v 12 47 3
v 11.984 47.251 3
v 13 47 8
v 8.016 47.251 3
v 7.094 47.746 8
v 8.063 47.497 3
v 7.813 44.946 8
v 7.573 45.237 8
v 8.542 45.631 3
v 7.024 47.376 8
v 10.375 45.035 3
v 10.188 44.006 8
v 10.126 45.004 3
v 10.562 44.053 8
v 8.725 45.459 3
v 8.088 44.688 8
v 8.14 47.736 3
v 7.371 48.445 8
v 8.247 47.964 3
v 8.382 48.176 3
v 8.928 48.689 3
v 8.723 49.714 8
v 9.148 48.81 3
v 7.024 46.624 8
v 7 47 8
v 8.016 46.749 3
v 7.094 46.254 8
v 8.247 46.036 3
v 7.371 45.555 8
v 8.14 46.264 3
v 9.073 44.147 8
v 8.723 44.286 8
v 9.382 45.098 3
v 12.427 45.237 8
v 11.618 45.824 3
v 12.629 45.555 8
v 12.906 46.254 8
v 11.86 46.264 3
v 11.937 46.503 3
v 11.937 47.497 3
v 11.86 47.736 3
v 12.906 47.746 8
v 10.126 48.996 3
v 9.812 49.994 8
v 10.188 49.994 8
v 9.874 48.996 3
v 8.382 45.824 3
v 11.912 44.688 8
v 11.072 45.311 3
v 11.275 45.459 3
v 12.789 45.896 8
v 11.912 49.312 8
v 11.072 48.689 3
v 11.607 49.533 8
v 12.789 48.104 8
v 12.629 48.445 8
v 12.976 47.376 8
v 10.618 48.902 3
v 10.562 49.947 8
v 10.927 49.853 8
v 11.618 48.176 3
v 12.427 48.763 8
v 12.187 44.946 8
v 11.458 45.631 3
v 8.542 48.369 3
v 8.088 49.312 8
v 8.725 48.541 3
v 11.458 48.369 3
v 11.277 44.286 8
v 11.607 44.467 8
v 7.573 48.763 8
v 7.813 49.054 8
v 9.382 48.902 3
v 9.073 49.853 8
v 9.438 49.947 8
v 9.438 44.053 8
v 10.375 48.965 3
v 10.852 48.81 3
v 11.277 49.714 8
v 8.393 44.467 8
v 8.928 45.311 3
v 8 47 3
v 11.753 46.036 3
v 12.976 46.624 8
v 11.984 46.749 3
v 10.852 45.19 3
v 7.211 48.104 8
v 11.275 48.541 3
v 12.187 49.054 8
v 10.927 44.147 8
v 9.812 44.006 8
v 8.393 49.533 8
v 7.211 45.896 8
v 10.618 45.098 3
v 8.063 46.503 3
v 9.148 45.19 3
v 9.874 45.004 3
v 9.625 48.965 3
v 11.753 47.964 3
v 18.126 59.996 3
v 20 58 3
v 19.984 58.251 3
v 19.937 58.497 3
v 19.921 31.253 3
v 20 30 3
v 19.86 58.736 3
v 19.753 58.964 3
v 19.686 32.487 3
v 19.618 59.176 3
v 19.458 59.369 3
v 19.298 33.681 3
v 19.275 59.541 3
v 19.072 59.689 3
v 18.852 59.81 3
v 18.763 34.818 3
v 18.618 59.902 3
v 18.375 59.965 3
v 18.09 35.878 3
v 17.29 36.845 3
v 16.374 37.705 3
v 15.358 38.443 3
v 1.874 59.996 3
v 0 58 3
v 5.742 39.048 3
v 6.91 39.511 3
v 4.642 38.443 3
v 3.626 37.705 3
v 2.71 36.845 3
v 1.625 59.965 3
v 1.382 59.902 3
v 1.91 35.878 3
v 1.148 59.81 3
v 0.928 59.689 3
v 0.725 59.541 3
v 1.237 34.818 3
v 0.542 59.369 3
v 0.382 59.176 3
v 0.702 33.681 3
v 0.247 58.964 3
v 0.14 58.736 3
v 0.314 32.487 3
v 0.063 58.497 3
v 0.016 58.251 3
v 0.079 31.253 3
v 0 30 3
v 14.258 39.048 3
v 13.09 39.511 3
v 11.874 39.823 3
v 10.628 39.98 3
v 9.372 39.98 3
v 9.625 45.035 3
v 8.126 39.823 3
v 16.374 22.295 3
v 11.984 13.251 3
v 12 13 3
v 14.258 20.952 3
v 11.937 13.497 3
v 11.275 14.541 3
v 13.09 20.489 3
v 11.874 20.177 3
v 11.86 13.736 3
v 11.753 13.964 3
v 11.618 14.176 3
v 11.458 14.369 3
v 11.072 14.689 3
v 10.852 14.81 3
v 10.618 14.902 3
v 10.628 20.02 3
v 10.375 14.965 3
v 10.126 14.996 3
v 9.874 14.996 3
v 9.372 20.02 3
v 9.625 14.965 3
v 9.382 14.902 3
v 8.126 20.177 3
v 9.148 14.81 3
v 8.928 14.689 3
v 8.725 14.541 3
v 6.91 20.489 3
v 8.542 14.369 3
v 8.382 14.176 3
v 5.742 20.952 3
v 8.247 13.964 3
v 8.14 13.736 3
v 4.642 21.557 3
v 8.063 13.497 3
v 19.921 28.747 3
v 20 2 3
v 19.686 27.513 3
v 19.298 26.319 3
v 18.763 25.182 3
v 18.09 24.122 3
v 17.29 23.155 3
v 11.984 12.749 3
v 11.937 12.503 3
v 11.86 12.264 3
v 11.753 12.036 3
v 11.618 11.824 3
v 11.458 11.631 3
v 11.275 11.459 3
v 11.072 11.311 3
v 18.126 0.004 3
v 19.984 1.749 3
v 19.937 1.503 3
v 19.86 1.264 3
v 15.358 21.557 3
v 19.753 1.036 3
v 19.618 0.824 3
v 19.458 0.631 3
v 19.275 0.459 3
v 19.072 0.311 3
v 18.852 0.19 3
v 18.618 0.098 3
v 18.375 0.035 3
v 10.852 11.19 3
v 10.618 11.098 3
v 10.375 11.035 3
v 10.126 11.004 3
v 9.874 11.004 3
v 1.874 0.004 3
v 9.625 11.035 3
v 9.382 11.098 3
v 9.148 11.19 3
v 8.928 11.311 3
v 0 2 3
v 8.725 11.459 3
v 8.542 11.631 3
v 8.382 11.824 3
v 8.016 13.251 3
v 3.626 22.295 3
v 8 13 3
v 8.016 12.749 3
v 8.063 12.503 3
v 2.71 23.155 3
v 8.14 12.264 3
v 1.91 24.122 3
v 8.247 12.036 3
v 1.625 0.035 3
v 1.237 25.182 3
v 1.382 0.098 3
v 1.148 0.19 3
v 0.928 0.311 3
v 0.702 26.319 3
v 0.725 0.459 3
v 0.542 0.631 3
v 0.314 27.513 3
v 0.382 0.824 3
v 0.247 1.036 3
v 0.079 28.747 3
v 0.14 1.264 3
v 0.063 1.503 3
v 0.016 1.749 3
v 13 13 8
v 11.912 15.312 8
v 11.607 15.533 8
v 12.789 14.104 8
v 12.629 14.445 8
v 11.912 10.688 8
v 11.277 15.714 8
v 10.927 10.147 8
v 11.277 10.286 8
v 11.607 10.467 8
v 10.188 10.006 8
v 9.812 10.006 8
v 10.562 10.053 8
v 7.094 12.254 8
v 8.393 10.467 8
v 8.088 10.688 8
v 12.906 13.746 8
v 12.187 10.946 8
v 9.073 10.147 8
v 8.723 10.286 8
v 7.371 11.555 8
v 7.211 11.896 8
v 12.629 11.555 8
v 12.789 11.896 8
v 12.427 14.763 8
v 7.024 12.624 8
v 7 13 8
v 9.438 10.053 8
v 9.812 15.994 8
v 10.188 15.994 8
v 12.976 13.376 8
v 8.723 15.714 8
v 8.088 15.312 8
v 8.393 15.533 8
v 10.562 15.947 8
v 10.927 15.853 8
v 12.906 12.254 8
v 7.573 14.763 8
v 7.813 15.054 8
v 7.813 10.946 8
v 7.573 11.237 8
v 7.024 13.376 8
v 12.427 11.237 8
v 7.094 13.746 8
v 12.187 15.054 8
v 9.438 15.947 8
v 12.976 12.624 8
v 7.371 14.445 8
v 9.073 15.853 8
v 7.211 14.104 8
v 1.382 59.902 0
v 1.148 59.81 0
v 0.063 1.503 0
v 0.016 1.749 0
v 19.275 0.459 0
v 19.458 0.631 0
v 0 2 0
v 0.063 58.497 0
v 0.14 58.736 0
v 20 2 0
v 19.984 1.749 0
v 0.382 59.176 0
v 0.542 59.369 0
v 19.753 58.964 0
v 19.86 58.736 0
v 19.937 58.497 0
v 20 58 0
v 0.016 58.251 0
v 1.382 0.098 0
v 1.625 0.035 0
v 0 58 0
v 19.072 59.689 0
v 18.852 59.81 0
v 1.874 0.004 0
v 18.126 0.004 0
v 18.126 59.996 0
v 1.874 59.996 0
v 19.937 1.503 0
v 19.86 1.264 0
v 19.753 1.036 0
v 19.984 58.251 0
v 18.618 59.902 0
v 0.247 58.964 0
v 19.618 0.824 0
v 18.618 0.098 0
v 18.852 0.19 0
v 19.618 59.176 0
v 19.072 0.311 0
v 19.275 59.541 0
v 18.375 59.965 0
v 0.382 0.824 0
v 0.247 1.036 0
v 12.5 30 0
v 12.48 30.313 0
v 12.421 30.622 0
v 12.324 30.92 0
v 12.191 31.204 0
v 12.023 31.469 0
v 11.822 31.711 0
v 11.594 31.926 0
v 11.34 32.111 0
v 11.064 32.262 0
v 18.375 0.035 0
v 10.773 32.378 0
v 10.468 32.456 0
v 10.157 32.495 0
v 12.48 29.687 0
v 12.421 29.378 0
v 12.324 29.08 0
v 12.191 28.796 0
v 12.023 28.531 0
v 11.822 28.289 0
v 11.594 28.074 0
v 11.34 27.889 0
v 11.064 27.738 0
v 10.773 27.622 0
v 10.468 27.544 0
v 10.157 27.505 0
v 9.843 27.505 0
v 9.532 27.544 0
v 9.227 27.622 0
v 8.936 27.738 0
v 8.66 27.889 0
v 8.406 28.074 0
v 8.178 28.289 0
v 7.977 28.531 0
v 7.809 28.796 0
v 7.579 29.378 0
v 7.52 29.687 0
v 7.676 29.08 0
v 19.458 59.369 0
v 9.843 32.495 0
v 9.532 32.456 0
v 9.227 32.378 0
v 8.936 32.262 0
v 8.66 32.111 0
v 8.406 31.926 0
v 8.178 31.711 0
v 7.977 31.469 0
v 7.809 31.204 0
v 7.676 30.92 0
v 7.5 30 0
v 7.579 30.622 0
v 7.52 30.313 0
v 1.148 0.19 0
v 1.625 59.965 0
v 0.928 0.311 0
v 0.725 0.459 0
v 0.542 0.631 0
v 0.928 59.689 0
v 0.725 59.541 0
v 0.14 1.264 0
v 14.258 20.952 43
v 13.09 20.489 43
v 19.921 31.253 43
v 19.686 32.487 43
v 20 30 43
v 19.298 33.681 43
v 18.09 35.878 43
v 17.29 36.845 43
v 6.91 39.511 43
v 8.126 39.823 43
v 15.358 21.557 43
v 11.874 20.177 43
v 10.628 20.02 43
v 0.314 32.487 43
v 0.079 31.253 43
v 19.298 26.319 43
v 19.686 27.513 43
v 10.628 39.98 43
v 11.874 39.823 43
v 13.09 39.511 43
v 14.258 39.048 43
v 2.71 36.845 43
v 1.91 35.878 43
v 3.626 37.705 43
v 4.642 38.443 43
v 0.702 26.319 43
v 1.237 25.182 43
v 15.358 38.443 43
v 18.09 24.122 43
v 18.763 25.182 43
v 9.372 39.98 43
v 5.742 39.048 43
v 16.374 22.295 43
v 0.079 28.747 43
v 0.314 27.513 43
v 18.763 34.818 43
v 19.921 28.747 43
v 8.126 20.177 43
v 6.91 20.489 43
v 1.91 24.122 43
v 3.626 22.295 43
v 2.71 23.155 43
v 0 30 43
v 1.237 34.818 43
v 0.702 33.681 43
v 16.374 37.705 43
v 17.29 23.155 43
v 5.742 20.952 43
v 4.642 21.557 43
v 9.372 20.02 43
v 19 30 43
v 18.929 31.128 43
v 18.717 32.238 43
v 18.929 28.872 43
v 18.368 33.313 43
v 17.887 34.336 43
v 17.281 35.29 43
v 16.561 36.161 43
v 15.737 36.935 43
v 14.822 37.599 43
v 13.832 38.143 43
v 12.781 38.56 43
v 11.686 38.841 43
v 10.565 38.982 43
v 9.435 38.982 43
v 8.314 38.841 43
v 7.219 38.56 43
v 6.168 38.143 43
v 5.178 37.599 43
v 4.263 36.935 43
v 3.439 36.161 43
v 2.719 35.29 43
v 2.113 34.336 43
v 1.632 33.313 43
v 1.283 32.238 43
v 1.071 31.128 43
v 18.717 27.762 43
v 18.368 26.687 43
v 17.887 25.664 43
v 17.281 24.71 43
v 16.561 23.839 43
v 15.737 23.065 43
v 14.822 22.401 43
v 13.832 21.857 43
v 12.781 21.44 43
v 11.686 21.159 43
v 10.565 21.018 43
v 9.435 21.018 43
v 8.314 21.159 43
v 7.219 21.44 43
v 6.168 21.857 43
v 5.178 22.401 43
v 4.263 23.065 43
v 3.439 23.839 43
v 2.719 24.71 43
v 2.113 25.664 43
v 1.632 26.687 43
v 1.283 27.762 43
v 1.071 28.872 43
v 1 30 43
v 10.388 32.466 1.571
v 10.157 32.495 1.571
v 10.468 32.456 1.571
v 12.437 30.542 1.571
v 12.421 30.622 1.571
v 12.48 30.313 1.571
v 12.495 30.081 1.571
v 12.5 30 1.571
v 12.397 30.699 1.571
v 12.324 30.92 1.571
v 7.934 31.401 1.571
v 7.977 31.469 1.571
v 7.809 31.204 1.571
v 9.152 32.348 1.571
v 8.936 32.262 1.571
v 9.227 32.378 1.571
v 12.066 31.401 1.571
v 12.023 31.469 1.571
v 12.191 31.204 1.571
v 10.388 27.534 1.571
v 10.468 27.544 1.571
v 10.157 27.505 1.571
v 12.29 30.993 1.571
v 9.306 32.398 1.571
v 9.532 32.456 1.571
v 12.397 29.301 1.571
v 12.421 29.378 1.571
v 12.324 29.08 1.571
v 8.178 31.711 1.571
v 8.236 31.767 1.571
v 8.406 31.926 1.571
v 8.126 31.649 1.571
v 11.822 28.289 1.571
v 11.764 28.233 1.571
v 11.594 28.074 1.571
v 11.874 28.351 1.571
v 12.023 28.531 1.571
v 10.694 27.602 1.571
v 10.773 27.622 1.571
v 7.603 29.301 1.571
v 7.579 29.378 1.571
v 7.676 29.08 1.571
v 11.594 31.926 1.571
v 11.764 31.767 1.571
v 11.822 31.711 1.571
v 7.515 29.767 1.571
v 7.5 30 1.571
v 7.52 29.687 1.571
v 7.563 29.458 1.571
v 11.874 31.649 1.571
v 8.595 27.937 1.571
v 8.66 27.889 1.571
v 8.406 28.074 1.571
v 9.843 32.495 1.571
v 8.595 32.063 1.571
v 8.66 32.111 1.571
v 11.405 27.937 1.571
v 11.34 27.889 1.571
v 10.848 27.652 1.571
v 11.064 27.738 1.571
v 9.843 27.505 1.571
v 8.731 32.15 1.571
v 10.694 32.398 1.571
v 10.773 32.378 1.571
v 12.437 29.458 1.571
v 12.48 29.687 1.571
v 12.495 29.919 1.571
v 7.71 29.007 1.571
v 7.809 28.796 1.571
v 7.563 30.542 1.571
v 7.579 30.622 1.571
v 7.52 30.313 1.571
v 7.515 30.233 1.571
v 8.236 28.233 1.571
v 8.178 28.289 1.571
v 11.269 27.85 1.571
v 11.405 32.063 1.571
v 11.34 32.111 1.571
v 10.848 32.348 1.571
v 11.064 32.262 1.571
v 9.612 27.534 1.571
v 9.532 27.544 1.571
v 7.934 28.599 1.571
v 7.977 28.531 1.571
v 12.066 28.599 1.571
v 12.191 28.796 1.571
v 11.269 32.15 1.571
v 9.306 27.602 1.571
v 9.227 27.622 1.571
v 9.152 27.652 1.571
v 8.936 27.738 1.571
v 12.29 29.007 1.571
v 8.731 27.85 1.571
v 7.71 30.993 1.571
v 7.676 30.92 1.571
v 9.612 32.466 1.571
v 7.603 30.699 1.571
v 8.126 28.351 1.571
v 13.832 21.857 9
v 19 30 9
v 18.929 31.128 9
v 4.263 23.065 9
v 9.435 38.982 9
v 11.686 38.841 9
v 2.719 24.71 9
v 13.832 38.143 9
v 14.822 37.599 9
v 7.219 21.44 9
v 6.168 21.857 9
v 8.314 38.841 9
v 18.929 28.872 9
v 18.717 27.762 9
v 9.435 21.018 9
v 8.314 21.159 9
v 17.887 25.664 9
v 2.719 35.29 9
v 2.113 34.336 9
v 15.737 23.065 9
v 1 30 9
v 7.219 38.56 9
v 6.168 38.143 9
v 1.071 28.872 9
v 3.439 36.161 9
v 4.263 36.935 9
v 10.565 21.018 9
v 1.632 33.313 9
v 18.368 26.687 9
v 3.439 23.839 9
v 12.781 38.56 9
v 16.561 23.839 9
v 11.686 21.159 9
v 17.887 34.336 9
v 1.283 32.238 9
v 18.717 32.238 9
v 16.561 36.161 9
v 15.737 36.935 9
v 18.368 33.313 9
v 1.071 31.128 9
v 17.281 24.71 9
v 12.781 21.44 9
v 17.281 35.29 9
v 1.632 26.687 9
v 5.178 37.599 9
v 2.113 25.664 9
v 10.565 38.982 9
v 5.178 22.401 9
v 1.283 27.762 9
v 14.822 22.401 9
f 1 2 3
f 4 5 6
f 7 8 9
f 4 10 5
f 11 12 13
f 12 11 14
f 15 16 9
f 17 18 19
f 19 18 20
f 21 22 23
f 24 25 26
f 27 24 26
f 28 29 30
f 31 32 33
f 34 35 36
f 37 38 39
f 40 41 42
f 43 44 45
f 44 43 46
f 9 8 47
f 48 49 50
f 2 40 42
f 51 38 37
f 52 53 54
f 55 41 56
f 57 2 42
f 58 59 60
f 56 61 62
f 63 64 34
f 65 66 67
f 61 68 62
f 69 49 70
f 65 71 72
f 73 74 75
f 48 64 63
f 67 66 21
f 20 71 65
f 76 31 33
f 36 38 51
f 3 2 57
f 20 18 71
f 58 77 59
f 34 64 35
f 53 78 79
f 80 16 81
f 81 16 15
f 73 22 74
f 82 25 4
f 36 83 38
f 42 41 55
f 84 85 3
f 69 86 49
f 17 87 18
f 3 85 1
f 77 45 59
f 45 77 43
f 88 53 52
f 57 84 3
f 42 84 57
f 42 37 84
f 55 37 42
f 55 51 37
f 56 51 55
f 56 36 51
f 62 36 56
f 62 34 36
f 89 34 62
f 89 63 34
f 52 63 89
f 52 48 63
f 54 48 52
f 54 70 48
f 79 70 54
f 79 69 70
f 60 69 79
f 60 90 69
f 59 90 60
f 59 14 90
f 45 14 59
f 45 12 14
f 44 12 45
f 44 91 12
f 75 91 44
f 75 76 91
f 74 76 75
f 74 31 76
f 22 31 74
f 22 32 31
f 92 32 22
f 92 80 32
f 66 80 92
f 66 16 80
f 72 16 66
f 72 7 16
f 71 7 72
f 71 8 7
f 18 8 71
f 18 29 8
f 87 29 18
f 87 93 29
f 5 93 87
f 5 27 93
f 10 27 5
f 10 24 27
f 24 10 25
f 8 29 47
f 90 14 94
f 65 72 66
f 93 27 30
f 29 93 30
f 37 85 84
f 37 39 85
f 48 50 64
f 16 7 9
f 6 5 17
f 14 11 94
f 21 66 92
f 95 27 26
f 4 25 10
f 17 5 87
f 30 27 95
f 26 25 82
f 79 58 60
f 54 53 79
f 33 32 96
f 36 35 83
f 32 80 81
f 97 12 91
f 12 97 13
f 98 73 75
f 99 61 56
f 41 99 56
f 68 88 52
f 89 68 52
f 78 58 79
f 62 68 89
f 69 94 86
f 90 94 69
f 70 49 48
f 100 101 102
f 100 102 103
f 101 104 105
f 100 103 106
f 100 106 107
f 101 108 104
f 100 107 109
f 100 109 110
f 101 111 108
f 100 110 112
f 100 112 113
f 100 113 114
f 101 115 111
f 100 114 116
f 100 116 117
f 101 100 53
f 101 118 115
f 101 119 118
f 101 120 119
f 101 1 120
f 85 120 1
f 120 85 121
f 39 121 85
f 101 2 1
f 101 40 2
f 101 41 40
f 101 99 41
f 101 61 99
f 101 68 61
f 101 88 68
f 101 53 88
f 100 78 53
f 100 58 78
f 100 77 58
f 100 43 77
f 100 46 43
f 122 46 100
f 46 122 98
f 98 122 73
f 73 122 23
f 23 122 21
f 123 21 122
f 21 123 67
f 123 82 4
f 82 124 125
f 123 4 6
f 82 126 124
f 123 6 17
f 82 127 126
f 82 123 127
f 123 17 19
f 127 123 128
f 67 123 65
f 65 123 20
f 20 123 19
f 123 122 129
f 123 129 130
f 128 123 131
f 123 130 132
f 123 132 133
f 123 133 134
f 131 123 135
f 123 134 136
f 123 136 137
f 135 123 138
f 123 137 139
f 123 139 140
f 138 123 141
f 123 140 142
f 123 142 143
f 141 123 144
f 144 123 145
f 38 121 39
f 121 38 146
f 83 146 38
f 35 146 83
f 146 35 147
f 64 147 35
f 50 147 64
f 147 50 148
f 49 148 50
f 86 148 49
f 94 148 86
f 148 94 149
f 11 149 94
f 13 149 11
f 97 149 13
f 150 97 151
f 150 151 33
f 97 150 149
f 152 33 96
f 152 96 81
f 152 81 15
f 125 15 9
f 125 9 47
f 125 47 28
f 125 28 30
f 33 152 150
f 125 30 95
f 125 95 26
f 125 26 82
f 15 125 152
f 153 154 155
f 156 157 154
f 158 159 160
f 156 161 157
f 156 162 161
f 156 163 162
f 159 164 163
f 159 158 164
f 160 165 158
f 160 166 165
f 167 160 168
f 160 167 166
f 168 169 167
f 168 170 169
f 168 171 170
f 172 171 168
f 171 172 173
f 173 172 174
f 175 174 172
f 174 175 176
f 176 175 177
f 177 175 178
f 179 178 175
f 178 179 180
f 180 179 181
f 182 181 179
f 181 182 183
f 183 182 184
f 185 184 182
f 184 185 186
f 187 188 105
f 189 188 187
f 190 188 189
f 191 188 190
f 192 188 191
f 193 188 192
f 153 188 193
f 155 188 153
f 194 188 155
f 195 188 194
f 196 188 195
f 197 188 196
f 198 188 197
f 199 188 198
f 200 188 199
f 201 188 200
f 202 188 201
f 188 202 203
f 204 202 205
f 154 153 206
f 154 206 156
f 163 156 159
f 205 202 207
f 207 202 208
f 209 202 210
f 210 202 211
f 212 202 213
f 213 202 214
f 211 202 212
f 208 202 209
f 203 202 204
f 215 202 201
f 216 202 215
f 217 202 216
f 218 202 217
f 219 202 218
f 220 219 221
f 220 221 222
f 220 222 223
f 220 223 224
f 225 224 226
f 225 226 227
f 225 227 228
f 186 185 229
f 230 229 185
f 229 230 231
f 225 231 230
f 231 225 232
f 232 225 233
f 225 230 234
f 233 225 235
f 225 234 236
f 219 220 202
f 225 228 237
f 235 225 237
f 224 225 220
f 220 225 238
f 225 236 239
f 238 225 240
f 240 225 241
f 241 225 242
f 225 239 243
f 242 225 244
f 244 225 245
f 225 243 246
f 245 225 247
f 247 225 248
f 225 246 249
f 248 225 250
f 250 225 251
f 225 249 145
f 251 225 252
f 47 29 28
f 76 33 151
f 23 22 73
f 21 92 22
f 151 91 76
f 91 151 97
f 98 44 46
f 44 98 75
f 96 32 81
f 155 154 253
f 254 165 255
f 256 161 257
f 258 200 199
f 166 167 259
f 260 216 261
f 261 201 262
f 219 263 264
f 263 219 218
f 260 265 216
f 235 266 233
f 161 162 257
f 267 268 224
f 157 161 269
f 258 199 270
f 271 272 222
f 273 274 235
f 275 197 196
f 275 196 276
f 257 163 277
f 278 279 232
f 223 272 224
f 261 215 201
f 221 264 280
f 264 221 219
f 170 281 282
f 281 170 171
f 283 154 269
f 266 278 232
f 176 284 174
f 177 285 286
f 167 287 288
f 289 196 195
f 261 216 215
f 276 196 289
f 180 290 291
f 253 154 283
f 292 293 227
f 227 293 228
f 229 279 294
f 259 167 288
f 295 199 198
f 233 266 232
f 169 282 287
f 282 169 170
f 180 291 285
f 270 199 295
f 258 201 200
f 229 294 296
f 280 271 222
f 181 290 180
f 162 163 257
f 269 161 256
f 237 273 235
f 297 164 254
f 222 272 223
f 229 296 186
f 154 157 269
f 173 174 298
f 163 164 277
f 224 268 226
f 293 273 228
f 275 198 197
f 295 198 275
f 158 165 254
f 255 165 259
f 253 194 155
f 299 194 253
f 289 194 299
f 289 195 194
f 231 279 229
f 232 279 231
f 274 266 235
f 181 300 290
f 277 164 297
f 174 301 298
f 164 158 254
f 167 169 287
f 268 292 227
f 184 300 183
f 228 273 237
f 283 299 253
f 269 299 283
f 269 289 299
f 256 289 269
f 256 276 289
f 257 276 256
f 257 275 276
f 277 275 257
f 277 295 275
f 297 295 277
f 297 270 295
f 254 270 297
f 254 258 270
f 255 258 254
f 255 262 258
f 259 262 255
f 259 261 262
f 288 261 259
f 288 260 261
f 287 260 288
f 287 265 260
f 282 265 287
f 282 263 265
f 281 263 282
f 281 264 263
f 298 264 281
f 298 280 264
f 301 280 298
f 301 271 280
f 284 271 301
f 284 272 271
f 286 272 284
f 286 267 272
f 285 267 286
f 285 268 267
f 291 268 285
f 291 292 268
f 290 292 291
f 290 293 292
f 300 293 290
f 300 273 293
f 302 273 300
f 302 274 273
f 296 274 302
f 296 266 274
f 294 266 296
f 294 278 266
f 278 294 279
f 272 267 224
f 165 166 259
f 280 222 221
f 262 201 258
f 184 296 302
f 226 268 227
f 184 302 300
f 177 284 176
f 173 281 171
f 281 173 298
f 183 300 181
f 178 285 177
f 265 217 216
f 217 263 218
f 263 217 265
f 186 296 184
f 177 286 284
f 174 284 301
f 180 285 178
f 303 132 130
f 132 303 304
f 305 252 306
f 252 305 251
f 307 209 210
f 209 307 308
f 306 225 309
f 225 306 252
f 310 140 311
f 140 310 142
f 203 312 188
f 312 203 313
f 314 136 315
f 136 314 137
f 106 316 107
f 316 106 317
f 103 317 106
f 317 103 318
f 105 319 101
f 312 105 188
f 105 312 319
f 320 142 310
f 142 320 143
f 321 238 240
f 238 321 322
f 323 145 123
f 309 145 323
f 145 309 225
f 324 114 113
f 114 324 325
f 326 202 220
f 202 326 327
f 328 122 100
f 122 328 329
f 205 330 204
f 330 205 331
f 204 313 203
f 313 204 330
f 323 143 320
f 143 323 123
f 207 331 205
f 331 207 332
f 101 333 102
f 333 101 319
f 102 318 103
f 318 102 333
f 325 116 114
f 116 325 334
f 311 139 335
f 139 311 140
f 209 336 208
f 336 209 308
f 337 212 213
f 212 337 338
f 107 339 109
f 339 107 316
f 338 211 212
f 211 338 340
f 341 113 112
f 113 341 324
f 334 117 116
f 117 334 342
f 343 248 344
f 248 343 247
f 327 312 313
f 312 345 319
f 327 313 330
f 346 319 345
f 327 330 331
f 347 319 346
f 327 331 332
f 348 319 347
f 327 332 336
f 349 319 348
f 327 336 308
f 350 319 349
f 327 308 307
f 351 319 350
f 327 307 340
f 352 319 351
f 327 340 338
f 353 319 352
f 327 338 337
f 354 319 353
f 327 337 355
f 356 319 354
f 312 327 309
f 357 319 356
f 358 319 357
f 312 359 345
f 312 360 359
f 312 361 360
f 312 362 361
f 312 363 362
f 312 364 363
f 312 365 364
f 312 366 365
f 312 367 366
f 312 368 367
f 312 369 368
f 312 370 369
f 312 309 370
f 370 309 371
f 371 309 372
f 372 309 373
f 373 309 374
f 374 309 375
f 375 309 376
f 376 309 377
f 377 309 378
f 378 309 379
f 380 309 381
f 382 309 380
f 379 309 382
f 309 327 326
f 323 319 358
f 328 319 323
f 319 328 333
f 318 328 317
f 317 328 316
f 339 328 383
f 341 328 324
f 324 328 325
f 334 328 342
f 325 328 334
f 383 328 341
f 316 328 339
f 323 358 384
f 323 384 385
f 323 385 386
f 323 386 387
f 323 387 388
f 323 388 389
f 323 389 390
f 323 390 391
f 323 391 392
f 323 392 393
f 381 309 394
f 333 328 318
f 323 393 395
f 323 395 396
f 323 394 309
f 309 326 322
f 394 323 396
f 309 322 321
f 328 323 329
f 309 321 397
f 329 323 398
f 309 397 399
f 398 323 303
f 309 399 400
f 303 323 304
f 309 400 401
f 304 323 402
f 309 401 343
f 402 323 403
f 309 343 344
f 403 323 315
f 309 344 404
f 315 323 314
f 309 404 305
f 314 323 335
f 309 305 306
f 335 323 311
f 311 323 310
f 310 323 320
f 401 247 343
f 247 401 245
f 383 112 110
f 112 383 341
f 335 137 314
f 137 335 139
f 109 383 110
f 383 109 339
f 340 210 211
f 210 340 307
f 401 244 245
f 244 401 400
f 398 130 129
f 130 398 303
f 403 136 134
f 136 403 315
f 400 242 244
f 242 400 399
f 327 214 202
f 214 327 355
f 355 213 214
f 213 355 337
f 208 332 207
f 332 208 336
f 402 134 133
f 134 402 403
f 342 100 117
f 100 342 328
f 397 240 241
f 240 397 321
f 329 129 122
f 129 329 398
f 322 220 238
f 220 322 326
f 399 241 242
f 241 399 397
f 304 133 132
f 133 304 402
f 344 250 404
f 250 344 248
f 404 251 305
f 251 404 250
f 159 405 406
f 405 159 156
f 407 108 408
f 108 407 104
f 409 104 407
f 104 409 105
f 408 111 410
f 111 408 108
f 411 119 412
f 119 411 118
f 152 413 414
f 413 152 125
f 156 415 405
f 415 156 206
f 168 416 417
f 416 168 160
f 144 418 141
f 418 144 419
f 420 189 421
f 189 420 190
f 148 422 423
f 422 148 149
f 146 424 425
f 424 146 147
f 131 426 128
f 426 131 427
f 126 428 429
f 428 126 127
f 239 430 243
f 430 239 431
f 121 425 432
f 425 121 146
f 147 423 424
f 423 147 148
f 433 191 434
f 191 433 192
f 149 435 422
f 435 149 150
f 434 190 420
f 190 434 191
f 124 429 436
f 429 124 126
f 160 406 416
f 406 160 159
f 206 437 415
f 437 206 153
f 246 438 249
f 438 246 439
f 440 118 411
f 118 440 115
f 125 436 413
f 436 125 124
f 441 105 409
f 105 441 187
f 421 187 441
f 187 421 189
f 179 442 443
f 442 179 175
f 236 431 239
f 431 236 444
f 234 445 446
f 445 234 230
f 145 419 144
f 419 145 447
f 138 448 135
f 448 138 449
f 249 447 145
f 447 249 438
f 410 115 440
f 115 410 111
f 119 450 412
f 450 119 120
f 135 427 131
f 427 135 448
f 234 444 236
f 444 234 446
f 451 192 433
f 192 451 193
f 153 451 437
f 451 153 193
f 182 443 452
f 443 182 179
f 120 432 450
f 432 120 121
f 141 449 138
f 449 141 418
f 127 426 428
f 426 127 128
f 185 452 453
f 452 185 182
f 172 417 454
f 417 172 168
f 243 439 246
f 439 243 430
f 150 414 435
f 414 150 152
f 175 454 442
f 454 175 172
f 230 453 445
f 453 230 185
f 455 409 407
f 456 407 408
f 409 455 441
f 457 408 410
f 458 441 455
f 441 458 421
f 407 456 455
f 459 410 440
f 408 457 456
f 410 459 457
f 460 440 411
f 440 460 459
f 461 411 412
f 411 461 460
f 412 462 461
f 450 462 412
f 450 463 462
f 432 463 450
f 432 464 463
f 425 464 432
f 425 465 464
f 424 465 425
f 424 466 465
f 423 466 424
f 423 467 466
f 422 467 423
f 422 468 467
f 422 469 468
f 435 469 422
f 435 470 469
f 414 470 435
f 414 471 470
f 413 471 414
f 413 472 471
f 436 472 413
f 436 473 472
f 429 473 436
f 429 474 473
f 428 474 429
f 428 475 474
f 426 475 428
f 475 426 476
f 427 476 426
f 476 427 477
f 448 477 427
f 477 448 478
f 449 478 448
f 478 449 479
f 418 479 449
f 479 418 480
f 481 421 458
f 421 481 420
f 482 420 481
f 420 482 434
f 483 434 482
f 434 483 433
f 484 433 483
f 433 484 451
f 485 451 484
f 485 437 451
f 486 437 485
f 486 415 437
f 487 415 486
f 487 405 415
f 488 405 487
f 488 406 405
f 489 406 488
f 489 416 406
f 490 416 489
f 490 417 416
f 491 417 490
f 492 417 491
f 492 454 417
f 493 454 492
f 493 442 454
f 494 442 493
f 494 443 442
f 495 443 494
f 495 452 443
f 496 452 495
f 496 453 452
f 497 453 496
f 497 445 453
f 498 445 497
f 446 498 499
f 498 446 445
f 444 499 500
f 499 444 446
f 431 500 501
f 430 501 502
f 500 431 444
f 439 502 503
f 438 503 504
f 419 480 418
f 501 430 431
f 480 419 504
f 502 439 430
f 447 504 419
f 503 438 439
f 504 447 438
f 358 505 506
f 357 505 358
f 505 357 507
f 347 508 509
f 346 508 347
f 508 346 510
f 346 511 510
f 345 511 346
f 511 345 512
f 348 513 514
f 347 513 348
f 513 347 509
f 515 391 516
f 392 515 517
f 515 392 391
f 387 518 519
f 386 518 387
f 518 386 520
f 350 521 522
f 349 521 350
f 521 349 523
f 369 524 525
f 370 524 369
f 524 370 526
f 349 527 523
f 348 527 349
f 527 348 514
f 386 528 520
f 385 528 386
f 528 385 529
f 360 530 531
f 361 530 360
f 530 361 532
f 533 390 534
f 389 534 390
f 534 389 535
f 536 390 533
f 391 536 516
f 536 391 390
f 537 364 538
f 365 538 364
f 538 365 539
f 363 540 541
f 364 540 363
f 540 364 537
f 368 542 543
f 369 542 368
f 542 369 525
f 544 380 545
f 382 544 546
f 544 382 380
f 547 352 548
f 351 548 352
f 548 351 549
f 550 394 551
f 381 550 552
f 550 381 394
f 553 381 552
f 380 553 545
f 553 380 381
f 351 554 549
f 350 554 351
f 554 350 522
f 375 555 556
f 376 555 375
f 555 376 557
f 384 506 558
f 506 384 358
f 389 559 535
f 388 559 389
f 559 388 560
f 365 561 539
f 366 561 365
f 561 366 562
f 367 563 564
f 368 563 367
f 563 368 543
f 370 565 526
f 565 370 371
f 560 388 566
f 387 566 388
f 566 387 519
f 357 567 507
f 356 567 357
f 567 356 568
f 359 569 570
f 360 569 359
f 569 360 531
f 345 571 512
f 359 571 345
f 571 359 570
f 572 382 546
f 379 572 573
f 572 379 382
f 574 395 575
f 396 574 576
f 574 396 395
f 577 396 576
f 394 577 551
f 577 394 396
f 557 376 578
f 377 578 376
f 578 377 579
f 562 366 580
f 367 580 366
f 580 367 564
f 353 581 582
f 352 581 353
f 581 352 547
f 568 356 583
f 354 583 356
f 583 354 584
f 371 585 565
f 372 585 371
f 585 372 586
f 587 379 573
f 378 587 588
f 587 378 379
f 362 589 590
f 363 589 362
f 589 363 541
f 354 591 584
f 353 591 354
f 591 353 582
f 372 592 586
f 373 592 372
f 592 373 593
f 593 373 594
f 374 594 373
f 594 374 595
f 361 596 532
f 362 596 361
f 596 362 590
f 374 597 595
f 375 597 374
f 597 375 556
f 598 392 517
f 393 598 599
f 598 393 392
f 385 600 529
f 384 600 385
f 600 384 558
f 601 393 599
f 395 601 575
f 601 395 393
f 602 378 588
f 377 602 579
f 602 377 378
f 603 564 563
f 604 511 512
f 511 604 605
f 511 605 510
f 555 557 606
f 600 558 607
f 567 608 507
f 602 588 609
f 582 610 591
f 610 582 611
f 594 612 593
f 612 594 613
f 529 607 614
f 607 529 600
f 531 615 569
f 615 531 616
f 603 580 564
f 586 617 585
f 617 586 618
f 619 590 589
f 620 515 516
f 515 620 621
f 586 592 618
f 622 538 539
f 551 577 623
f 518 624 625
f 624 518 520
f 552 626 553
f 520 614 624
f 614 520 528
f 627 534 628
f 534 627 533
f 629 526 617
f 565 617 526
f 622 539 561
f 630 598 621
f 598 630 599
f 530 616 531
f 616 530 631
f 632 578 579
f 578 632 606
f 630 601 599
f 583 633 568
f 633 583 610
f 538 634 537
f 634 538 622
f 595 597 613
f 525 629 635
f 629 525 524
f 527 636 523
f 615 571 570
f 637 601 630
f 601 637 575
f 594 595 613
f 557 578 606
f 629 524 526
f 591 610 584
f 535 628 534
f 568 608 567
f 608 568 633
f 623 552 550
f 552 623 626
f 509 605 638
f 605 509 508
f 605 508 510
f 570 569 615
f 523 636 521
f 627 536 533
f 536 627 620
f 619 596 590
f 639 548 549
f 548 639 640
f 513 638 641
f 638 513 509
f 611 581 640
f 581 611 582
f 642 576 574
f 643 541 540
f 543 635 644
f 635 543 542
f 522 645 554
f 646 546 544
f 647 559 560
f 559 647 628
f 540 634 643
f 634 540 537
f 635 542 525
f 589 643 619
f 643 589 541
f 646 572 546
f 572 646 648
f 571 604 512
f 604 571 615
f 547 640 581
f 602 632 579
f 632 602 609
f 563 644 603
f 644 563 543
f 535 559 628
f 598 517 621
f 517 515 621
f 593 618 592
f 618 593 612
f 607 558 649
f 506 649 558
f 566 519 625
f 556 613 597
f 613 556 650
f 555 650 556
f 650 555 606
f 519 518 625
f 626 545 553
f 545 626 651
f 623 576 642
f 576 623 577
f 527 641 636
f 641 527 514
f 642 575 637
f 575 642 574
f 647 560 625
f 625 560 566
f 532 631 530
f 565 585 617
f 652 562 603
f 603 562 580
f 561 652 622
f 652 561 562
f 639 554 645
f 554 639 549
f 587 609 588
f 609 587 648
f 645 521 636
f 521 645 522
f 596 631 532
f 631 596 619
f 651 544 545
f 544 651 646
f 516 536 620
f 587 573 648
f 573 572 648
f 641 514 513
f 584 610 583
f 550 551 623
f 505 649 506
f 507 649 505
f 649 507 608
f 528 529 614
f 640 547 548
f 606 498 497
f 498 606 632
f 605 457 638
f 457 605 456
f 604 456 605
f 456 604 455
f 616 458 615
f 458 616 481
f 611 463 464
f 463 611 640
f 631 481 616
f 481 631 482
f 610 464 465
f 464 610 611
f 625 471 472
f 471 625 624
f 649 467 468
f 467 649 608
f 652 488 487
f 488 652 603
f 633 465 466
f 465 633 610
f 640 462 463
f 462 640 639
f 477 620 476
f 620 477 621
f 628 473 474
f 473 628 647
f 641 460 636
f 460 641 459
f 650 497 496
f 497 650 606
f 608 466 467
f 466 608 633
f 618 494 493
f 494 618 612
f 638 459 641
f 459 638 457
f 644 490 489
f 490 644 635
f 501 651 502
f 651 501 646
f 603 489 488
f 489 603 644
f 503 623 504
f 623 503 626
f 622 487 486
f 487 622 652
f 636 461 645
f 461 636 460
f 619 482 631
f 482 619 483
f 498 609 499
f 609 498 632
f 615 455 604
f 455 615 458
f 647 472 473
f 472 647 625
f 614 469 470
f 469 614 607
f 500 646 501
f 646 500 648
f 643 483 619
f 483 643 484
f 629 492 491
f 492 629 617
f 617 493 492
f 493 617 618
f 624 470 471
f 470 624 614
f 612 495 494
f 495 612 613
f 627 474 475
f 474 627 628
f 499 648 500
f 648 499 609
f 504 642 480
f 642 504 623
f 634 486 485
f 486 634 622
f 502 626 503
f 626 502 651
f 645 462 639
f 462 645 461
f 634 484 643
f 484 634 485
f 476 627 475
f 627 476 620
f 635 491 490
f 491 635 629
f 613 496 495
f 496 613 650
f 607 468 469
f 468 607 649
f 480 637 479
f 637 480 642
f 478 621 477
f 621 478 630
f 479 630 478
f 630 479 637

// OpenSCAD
// file: libs/nutsnbolts/data-access.scad
// Norm Nuts and Bolts - a OpenSCAD library
// Copyright (C) 2012  Johannes Kneer

// This program is free software: you can redistribute it and/or modify
// it under the terms of the GNU General Public License as published by
// the Free Software Foundation, either version 3 of the License, or
// (at your option) any later version.

// This program is distributed in the hope that it will be useful,
// but WITHOUT ANY WARRANTY; without even the implied warranty of
// MERCHANTABILITY or FITNESS FOR A PARTICULAR PURPOSE.  See the
// GNU General Public License for more details.

// You should have received a copy of the GNU General Public License
// along with this program.  If not, see <http://www.gnu.org/licenses/>.


// DATABASE ACCESS FUNCTIONS AND CONSTANTS



// == CONSTANTS ==

// screw table access keys
_NB_S_DESC            = 0;
_NB_S_FAMKEY			    = 1;
_NB_S_LENGTH          = 2;
_NB_S_NOTHREAD_LENGTH = 3;

_NB_F_DESC			      = 0;
_NB_F_OUTER_DIA       = 1;
_NB_F_INNER_DIA       = 2;
_NB_F_LEAD            = 3;
_NB_F_KEY             = 4;
_NB_F_KEY_DEPTH       = 5;
_NB_F_HEAD_HEIGHT     = 6;
_NB_F_HEAD_DIA        = 7;
_NB_F_NUT_KEY         = 8;
_NB_F_NUT_HEIGHT      = 9;
_NB_F_PITCH_FINE      = 10;
_NB_F_PITCH_MEDIUM    = 11;
_NB_F_PITCH_COARSE    = 12;


// == FUNCTIONS ==

// _get_screw("descriptor")   with descriptor = M8x25
//   find the line for a general object in the data matrix

function _get_screw(n) = data_screw[search([n], data_screw)[0]];
function _get_screw_fam(n) = data_screw_fam[search([_get_screw(n)[_NB_S_FAMKEY]], data_screw_fam)[0]];

function _get_fam(n) = data_screw_fam[search([n], data_screw_fam)[0]];


// _get_XXXXX("descriptor") functions
// find a single property in the database

function _get_desc(n)        = _get_screw(n)[_NB_S_DESC];
function _get_famkey(n)         = _get_screw(n)[_NB_S_FAMKEY];
function _get_length(n)      = _get_screw(n)[_NB_S_LENGTH];
function _get_nt_length(n)   = _get_screw(n)[_NB_S_NOTHREAD_LENGTH];

function _get_outer_dia(n)   = _get_screw_fam(n)[_NB_F_OUTER_DIA];
function _get_inner_dia(n)   = _get_screw_fam(n)[_NB_F_INNER_DIA];
function _get_lead(n)        = _get_screw_fam(n)[_NB_F_LEAD];
function _get_head_height(n) = _get_screw_fam(n)[_NB_F_HEAD_HEIGHT];
function _get_head_dia(n)    = _get_screw_fam(n)[_NB_F_HEAD_DIA];
function _get_nut_key(n)     = _get_screw_fam(n)[_NB_F_NUT_KEY];
function _get_nut_height(n)  = _get_screw_fam(n)[_NB_F_NUT_HEIGHT];
function _get_fine_pitch(n)  = _get_screw_fam(n)[_NB_F_PITCH_FINE];
function _get_medium_pitch(n)  = _get_screw_fam(n)[_NB_F_PITCH_MEDIUM];
function _get_coarse_pitch(n)  = _get_screw_fam(n)[_NB_F_PITCH_COARSE];
// file: libs/nwh_utils.scad
// Neils utility functions

// 1/4 tube to round edges with.
module roundel(l=40, r=3) {
	r2 = r*2;
	// Round the edge by 3
	rotate([-90,0,0]) rotate([0,90,0]) difference() {
		cylinder(r1=r2,r2=r2,h=l);
		cylinder(r1=r,r2=r,h=l);
		translate([-r2,0,0]) cube([r2*2,r2,l]);
		translate([0,-r2,0]) cube([r2,r2*2,l]);
	}
}

// Create a 1/4 tube to round edges with. length centered on 
// the origin, and the corner edge running down an axis throgh the origin.
module corner_rounder(l=40, r=3, align="x", quadrant=1) {
    
    rx = (align=="x")?90:0;
    ry = (align=="y")?90:0;
    rz=90*quadrant;

	rotate([ry,rx,0]) rotate([0,0,rz]) difference() {
		translate([-0.1,-0.1,-l/2])cube([r+0.2,r+0.2,l]);
		translate([r,r,(-l/2)-1]) cylinder(r1=r,r2=r,h=l+2);
	}

}

// A rectangle with rounded corners extruded up in z direction
// roundedRect([30,20,10], 5);
module roundedRect(size, r) {

	x = size[0];
	y = size[1];
	z = size[2];

	linear_extrude(height=z) hull() {
    	// place 4 circles in the corners, with the given radius
    	translate([r,r,0])     circle(r=r);
    	translate([r,y-r,0])   circle(r=r);
    	translate([x-r,y-r,0]) circle(r=r);
    	translate([x-r,r,0])   circle(r=r);

	}

}

// A long block with round ends extruded up in z direction
module block(w=10,h=10,l=30) {
    hull() {
        cylinder(d=w,h=h);
        translate([l,0,0]) cylinder(d=w,h=h);
        
    }
}

module tube(r=20,wall=3,h=5) {
	difference() {
		cylinder(r1=r+wall,r2=r+wall,h=h);
		cylinder(r1=r,r2=r,h=h);
	}
}

module tubesector(r=20,wall=3,h=5,angle=45) {
	cube_side=(wall+r)*2;
	difference() {
		tube(r=r,wall=wall,h=h);
		rotate([0,0,angle]) translate([-cube_side/2,0,0]) cube([cube_side,cube_side,h]);
		rotate([0,0,-angle]) translate([-cube_side/2,0,0]) cube([cube_side,cube_side,h]);
	}

}

//=================================================
// Neils standard holes for attaching

// Countersink,
// M4 = 4.2,2.7
// M3 = 2.7,1.5
module countersink_simple(r1,r2) {
	cylinder(r2,r1,r2);
	translate([0,0,0.1-r1]) cylinder(r1,r1,r1);
}

/**
 * Countersunk hole, Sizes from:
 * https://www.sciencedirect.com/topics/engineering/countersunk-hole
 */
module countersink_iso(size="M4") { 	

    // convert size name to diameter
    sizes=[ 
        ["M3",6.72],
        ["M4",8.96],
        ["M5",11.2],
        ["M6",13.44],
        ["M8",17.92],
        ["M10",22.4],
        ["M12",26.88],
        ["M16",33.6],
        ["M20",40.32]
    ];

    match=search([size], sizes, num_returns_per_match=1)[0];
    d=sizes[match][1];
    
    cylinder(r1=d/2,r2=0,h=d/2);
    translate([0,0,-d/4]) cylinder(r1=d/2,r2=d/2,h=d/4);
}

// A standard M3 countersunk hole with extra clearance
module m3_hole(x=12,radius,angle=0) {
		translate([0,radius,x]) {
		 	//rotate([270+angle,0,0]) countersink_simple(r1=2.75, r2=1.5, h1=1.5, h2=1.5);
		 	rotate([270+angle,0,0]) countersink_simple(r1=2.75, r2=1.5);
			rotate([90+angle,0,0]) hole_through(name="M3", l=30, cl=0.1, h=0, hcl=0.1);	
		}
}

// hole and hex nutcatch in line with hole
module nut_and_hole(xlate=[0,0,0],type="M3",lx=4,lh=50) {
	translate(xlate) rotate([0,180,0]) {
			nutcatch_parallel(type,l=lx);
			hole_through(name=type, l=lh, cld=0.1, h=0, hcld=0.1);
	}
}

// Bolt with hex nutcatch in line.
module bolthole(name="M4", l=10,nutcatch_h=10,nutcatch_d=4) {
	union() {
			hole_through(name=name, l=l, cld=.5, h=0, hcl=0.5); // small hole
			
            hole_through(name=name, l=0, cld=0, h=4, hcl=0.5); // bolt head
			
            translate([0,0,-nutcatch_h+nutcatch_d])
            nutcatch_parallel(name,l=nutcatch_d); // nutcatch
	}
}

// Tapping hole for 3/8 to 1/4 inch tripod mount converter
module recess_hole(x=12,diameter=8,radius=20,angle=0) {
		translate([0,radius,x]) {
			rotate([90+angle,0,0]) {
                cylinder(h = 50, r1=diameter/2, r2=diameter/2, center = false);	
                cylinder(h = 1.5,  r1=(diameter+2)/2, r2=(diameter+2)/2, center = false);	
                
            }
		}
}
// file: libs/nutsnbolts/materials.scad
// Colour Scheme
vividWhite = "#f7f8f4";
whisperWhite = "#ebe9e0";
monument = "#404141";
monument3 = "#4d4e4e";

floorColour = "#6A6661";
benchColour = vividWhite;

woodColour1 = "#f7ecd9";
woodColour2 = "#f2e2c4";
woodColour3 = "#eed7af";
woodColour4 = "#e9cd9a";
woodColour5 = "#e4c385";
woodColour6 = "#e0b870";
woodColour7 = "#dbae5b";

woodColour = woodColour4;

couchCushionColour = "LightSkyBlue";

// Use Gaboon Ply - sheet size is 2400x1200
ply3= 3; // 4.5kg
ply6= 6; // 9kg
ply9= 9; // 13.4kg
ply12 = 12; // 19.9kg
ply15 = 15;
ply18 = 18; // 26.8kg

panelPly = ply3;
boxPly = ply6;
facePly = ply12;
shelfPly = ply12;

// benchPly = ply15;
framingPly = ply12;
framingWidth = 50;

panelThickness = panelPly+framingPly;
benchThickness = ply15;

floorPly = ply9;

slatWidth = 64;
slatDepth = ply15;
slat = [64,19];

rail = [64,19];

hingeClosed = [75, 35, 3];

legWidth = 38;
// main file
$fn=50;
include <libs/nutsnbolts/cyl_head_bolt.scad>;
include <libs/nutsnbolts/materials.scad>;
include <libs/nwh_utils.scad>;


// Hope V4 Brake bleed bucket
// Sits on top of the resevoir, held on with silicon band ( less fuss than screwing it on )
// If you prefer screw holes, look at screw_sep and band_sep vars.

// Size of the flat base
mainw = 20;
mainl = 60;
mainh = 3;

// Size of the fill bucket
cylh=40; 
cylr=mainw/2;
baseh=8; // Height of the inside slope

//screw_sep=39; // Distance between screw holes. Set to 0 ( zero ) for none
screw_sep=0;
band_peg_sep=17; // Rubberband lugs for easy attach. Set to 0 ( zero ) for none
//band_peg_sep=0; 

difference() {
    body();
    color("red") hole();
    color("blue") screw_holes(); // Dont need screw holes, its easier to use a rubber band
}

module body() {
    roundedRect([mainw,mainl,mainh], 2);
    translate([mainw/2,mainl/2,cylh/2 + mainh])  cylinder(h=cylh, r1=cylr, r2=cylr ,center=true);
    band_pegs();
}

module hole() {
    translate([mainw/2, mainl/2, mainh+cylh]) hole_through(name="M5", l=mainh+cylh, cld=0, h=0, hcld=0);
    translate([mainw/2, mainl/2, 1])  cylinder(r1=2, r2=cylr-1, h=baseh);
    translate([mainw/2, mainl/2, 1+baseh+cylh/2]) cylinder(h=cylh, r1=cylr-1, r2=cylr-1, center=true); 
}

module screw_holes() {  
    hole_offset=mainl/2-screw_sep/2;
    translate([mainw/2, hole_offset, mainh]) hole_through(name="M2", l=mainh, cld=0, h=0, hcld=0);
    translate([mainw/2, hole_offset+screw_sep, mainh]) hole_through(name="M2", l=mainh, cld=0, h=0, hcld=0);   
}

module band_pegs() {  
    peg_offset=mainl/2;
    translate([mainw/2,peg_offset+band_peg_sep,mainh])  cylinder(h=5, r1=2, r2=3 ,center=false);
    translate([mainw/2,peg_offset-band_peg_sep,mainh])  cylinder(h=5, r1=2, r2=3 ,center=false);
}
